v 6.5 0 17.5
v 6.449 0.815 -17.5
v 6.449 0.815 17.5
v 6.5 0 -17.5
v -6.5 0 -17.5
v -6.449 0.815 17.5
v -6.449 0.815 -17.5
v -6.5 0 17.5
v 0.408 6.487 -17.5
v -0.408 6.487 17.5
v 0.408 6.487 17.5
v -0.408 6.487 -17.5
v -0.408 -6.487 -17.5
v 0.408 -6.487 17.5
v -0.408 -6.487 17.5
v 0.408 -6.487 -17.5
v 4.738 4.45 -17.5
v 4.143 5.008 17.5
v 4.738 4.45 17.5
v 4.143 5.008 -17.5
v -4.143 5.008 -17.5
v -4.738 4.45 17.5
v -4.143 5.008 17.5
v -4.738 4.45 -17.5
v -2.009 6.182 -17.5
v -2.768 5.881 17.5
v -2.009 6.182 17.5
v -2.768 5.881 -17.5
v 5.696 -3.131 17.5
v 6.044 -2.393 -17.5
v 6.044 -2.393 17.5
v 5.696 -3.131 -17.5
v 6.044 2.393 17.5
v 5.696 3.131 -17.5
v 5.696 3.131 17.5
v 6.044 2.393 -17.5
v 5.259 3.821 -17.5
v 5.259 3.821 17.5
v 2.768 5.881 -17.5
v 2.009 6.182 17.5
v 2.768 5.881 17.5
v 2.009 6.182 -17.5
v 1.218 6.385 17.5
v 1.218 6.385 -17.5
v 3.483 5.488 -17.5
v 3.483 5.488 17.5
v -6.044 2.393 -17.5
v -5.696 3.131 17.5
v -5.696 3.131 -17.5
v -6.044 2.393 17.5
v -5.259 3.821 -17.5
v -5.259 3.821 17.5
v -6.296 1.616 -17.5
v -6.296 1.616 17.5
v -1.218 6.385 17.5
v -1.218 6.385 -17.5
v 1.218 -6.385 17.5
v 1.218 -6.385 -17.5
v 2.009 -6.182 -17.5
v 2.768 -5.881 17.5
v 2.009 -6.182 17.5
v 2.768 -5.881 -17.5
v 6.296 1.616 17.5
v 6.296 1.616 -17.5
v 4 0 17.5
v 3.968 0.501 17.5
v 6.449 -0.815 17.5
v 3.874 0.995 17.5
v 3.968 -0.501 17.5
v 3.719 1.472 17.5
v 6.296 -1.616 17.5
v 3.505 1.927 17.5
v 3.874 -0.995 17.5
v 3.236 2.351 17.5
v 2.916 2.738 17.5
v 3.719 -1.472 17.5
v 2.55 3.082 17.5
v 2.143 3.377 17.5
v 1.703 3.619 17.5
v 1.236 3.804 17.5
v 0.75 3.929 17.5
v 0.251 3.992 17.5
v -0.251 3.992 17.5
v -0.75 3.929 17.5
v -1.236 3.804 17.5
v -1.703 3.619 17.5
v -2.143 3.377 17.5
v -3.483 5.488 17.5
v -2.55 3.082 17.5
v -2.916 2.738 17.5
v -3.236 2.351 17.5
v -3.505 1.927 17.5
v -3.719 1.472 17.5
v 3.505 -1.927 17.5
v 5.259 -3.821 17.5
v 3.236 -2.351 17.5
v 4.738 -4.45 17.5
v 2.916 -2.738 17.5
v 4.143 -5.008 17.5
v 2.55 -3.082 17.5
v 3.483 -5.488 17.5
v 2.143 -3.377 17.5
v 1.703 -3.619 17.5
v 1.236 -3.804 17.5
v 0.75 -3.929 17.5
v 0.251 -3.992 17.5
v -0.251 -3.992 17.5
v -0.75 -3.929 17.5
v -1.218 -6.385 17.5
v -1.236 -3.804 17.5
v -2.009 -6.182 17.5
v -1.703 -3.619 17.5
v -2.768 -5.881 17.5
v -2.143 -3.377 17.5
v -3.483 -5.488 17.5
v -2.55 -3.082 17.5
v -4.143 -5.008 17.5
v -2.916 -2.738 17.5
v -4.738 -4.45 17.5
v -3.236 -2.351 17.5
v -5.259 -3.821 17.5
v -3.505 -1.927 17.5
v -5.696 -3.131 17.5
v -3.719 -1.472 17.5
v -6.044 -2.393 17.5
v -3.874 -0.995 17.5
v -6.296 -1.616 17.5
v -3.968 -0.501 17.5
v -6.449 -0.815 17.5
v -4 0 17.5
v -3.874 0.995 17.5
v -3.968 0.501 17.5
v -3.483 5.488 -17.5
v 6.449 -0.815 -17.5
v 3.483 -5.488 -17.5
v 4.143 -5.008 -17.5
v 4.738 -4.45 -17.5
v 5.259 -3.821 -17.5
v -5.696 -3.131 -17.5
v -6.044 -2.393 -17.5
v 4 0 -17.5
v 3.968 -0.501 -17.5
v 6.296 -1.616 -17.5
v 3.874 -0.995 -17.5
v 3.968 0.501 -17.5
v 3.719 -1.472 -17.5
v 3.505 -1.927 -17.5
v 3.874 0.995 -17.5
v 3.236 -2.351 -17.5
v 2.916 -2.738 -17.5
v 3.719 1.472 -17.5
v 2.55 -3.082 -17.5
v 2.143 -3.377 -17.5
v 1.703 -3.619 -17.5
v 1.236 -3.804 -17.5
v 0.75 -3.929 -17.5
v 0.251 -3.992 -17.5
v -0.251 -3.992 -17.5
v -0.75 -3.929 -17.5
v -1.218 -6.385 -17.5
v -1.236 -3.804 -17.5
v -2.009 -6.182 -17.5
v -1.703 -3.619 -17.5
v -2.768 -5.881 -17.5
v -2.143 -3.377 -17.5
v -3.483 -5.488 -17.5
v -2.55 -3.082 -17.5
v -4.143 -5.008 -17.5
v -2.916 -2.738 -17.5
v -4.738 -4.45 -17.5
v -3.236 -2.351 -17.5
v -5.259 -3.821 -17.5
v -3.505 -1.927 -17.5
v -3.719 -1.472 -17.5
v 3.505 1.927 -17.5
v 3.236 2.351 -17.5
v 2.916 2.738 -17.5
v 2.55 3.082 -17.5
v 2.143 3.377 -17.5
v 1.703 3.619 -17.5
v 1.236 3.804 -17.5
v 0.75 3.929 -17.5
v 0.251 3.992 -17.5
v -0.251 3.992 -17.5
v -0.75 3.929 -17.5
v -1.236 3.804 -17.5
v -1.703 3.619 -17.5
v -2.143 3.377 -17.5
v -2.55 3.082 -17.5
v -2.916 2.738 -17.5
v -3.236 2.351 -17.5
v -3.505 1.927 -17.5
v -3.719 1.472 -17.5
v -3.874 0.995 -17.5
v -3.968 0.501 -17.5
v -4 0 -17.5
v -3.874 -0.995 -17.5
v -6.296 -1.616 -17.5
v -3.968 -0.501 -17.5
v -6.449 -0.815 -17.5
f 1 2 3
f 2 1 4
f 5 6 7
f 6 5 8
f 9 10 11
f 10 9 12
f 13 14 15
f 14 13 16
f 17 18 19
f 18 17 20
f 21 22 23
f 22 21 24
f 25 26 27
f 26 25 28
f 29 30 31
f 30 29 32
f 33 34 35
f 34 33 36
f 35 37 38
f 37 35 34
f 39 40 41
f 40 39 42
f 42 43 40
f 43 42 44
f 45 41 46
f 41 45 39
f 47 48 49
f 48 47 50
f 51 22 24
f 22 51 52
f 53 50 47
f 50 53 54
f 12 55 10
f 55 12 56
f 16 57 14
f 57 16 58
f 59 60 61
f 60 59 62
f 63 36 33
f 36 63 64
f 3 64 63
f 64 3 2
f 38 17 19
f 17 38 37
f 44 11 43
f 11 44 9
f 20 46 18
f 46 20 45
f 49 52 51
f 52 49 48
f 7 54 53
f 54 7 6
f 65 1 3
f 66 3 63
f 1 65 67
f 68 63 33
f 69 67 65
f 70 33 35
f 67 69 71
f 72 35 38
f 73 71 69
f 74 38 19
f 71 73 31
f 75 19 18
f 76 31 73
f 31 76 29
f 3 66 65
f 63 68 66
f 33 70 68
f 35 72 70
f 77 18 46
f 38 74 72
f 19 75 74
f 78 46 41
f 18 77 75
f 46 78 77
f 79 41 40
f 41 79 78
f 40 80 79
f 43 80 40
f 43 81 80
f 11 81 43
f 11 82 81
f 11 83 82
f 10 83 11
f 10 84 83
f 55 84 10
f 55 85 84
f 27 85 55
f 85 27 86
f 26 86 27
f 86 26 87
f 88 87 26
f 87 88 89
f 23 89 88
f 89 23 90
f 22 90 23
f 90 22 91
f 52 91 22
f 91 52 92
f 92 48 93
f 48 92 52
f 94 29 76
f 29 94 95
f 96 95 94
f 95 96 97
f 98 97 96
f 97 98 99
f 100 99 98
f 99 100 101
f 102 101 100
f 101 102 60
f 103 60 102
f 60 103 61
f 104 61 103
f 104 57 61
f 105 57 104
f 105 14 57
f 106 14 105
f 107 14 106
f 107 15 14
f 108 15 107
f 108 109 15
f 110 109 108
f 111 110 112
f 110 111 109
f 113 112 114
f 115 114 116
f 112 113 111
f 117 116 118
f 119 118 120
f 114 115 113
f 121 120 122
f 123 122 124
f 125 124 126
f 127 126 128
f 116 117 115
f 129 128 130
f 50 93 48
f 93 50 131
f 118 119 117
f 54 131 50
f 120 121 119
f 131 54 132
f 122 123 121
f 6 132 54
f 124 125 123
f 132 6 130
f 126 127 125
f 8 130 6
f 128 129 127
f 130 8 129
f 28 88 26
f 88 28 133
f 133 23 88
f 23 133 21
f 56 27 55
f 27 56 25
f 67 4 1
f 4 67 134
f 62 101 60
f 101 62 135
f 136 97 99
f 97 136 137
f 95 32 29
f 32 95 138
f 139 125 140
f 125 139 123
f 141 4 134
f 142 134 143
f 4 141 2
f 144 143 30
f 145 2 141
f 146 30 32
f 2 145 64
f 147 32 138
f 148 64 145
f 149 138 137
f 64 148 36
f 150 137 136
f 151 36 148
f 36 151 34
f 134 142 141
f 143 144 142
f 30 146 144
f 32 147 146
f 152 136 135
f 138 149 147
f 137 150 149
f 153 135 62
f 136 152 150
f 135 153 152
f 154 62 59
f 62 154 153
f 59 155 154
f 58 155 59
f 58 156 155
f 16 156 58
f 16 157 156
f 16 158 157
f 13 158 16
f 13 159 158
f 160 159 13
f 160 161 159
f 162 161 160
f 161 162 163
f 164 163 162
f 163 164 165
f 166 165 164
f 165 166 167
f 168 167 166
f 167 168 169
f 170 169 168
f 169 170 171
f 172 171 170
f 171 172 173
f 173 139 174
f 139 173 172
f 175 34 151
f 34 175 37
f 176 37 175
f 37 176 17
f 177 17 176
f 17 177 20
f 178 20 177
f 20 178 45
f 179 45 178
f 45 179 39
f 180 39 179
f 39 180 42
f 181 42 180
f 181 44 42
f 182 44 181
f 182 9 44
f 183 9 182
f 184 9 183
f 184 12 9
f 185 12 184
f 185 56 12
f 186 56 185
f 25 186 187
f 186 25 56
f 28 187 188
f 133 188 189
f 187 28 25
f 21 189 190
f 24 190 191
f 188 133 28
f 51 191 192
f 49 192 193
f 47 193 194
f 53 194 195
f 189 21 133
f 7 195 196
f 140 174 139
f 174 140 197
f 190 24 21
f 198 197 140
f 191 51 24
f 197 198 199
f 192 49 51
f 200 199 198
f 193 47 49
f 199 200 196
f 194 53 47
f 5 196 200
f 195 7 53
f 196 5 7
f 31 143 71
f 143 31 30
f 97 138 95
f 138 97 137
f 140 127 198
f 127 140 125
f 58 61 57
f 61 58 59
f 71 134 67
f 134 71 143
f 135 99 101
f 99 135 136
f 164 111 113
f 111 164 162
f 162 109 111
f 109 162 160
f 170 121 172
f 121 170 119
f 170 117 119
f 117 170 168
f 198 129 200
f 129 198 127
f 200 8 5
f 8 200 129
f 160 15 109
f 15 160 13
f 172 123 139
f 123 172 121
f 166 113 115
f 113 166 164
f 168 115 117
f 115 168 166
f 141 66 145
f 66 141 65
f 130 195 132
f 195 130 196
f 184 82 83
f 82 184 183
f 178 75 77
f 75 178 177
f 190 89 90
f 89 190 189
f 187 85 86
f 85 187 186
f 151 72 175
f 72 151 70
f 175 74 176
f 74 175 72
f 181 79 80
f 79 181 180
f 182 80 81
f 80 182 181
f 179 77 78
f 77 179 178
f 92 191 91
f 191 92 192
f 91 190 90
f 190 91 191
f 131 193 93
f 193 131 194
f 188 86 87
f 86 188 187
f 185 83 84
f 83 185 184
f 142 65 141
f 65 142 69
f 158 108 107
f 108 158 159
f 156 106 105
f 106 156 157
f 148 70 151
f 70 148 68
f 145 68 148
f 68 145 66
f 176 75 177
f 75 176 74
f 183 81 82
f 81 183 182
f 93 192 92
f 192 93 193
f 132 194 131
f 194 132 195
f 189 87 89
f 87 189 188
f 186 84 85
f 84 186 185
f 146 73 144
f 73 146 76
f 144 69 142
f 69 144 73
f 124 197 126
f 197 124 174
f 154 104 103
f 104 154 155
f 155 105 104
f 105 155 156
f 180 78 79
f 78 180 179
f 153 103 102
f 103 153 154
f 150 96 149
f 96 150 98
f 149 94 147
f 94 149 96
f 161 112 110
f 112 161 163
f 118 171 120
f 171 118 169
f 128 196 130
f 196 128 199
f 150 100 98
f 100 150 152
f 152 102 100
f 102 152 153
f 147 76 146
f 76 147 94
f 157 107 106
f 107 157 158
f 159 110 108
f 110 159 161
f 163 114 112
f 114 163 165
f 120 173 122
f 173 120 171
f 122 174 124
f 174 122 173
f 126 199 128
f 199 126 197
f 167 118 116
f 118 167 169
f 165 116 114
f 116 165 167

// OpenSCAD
$fn = 50;


difference() {
	union() {
		translate(v = [0, 0, -17.5000000000]) {
			cylinder(h = 35, r = 6.5000000000);
		}
	}
	union() {
		translate(v = [0, 0, -100.0000000000]) {
			cylinder(h = 200, r = 4);
		}
	}
}
